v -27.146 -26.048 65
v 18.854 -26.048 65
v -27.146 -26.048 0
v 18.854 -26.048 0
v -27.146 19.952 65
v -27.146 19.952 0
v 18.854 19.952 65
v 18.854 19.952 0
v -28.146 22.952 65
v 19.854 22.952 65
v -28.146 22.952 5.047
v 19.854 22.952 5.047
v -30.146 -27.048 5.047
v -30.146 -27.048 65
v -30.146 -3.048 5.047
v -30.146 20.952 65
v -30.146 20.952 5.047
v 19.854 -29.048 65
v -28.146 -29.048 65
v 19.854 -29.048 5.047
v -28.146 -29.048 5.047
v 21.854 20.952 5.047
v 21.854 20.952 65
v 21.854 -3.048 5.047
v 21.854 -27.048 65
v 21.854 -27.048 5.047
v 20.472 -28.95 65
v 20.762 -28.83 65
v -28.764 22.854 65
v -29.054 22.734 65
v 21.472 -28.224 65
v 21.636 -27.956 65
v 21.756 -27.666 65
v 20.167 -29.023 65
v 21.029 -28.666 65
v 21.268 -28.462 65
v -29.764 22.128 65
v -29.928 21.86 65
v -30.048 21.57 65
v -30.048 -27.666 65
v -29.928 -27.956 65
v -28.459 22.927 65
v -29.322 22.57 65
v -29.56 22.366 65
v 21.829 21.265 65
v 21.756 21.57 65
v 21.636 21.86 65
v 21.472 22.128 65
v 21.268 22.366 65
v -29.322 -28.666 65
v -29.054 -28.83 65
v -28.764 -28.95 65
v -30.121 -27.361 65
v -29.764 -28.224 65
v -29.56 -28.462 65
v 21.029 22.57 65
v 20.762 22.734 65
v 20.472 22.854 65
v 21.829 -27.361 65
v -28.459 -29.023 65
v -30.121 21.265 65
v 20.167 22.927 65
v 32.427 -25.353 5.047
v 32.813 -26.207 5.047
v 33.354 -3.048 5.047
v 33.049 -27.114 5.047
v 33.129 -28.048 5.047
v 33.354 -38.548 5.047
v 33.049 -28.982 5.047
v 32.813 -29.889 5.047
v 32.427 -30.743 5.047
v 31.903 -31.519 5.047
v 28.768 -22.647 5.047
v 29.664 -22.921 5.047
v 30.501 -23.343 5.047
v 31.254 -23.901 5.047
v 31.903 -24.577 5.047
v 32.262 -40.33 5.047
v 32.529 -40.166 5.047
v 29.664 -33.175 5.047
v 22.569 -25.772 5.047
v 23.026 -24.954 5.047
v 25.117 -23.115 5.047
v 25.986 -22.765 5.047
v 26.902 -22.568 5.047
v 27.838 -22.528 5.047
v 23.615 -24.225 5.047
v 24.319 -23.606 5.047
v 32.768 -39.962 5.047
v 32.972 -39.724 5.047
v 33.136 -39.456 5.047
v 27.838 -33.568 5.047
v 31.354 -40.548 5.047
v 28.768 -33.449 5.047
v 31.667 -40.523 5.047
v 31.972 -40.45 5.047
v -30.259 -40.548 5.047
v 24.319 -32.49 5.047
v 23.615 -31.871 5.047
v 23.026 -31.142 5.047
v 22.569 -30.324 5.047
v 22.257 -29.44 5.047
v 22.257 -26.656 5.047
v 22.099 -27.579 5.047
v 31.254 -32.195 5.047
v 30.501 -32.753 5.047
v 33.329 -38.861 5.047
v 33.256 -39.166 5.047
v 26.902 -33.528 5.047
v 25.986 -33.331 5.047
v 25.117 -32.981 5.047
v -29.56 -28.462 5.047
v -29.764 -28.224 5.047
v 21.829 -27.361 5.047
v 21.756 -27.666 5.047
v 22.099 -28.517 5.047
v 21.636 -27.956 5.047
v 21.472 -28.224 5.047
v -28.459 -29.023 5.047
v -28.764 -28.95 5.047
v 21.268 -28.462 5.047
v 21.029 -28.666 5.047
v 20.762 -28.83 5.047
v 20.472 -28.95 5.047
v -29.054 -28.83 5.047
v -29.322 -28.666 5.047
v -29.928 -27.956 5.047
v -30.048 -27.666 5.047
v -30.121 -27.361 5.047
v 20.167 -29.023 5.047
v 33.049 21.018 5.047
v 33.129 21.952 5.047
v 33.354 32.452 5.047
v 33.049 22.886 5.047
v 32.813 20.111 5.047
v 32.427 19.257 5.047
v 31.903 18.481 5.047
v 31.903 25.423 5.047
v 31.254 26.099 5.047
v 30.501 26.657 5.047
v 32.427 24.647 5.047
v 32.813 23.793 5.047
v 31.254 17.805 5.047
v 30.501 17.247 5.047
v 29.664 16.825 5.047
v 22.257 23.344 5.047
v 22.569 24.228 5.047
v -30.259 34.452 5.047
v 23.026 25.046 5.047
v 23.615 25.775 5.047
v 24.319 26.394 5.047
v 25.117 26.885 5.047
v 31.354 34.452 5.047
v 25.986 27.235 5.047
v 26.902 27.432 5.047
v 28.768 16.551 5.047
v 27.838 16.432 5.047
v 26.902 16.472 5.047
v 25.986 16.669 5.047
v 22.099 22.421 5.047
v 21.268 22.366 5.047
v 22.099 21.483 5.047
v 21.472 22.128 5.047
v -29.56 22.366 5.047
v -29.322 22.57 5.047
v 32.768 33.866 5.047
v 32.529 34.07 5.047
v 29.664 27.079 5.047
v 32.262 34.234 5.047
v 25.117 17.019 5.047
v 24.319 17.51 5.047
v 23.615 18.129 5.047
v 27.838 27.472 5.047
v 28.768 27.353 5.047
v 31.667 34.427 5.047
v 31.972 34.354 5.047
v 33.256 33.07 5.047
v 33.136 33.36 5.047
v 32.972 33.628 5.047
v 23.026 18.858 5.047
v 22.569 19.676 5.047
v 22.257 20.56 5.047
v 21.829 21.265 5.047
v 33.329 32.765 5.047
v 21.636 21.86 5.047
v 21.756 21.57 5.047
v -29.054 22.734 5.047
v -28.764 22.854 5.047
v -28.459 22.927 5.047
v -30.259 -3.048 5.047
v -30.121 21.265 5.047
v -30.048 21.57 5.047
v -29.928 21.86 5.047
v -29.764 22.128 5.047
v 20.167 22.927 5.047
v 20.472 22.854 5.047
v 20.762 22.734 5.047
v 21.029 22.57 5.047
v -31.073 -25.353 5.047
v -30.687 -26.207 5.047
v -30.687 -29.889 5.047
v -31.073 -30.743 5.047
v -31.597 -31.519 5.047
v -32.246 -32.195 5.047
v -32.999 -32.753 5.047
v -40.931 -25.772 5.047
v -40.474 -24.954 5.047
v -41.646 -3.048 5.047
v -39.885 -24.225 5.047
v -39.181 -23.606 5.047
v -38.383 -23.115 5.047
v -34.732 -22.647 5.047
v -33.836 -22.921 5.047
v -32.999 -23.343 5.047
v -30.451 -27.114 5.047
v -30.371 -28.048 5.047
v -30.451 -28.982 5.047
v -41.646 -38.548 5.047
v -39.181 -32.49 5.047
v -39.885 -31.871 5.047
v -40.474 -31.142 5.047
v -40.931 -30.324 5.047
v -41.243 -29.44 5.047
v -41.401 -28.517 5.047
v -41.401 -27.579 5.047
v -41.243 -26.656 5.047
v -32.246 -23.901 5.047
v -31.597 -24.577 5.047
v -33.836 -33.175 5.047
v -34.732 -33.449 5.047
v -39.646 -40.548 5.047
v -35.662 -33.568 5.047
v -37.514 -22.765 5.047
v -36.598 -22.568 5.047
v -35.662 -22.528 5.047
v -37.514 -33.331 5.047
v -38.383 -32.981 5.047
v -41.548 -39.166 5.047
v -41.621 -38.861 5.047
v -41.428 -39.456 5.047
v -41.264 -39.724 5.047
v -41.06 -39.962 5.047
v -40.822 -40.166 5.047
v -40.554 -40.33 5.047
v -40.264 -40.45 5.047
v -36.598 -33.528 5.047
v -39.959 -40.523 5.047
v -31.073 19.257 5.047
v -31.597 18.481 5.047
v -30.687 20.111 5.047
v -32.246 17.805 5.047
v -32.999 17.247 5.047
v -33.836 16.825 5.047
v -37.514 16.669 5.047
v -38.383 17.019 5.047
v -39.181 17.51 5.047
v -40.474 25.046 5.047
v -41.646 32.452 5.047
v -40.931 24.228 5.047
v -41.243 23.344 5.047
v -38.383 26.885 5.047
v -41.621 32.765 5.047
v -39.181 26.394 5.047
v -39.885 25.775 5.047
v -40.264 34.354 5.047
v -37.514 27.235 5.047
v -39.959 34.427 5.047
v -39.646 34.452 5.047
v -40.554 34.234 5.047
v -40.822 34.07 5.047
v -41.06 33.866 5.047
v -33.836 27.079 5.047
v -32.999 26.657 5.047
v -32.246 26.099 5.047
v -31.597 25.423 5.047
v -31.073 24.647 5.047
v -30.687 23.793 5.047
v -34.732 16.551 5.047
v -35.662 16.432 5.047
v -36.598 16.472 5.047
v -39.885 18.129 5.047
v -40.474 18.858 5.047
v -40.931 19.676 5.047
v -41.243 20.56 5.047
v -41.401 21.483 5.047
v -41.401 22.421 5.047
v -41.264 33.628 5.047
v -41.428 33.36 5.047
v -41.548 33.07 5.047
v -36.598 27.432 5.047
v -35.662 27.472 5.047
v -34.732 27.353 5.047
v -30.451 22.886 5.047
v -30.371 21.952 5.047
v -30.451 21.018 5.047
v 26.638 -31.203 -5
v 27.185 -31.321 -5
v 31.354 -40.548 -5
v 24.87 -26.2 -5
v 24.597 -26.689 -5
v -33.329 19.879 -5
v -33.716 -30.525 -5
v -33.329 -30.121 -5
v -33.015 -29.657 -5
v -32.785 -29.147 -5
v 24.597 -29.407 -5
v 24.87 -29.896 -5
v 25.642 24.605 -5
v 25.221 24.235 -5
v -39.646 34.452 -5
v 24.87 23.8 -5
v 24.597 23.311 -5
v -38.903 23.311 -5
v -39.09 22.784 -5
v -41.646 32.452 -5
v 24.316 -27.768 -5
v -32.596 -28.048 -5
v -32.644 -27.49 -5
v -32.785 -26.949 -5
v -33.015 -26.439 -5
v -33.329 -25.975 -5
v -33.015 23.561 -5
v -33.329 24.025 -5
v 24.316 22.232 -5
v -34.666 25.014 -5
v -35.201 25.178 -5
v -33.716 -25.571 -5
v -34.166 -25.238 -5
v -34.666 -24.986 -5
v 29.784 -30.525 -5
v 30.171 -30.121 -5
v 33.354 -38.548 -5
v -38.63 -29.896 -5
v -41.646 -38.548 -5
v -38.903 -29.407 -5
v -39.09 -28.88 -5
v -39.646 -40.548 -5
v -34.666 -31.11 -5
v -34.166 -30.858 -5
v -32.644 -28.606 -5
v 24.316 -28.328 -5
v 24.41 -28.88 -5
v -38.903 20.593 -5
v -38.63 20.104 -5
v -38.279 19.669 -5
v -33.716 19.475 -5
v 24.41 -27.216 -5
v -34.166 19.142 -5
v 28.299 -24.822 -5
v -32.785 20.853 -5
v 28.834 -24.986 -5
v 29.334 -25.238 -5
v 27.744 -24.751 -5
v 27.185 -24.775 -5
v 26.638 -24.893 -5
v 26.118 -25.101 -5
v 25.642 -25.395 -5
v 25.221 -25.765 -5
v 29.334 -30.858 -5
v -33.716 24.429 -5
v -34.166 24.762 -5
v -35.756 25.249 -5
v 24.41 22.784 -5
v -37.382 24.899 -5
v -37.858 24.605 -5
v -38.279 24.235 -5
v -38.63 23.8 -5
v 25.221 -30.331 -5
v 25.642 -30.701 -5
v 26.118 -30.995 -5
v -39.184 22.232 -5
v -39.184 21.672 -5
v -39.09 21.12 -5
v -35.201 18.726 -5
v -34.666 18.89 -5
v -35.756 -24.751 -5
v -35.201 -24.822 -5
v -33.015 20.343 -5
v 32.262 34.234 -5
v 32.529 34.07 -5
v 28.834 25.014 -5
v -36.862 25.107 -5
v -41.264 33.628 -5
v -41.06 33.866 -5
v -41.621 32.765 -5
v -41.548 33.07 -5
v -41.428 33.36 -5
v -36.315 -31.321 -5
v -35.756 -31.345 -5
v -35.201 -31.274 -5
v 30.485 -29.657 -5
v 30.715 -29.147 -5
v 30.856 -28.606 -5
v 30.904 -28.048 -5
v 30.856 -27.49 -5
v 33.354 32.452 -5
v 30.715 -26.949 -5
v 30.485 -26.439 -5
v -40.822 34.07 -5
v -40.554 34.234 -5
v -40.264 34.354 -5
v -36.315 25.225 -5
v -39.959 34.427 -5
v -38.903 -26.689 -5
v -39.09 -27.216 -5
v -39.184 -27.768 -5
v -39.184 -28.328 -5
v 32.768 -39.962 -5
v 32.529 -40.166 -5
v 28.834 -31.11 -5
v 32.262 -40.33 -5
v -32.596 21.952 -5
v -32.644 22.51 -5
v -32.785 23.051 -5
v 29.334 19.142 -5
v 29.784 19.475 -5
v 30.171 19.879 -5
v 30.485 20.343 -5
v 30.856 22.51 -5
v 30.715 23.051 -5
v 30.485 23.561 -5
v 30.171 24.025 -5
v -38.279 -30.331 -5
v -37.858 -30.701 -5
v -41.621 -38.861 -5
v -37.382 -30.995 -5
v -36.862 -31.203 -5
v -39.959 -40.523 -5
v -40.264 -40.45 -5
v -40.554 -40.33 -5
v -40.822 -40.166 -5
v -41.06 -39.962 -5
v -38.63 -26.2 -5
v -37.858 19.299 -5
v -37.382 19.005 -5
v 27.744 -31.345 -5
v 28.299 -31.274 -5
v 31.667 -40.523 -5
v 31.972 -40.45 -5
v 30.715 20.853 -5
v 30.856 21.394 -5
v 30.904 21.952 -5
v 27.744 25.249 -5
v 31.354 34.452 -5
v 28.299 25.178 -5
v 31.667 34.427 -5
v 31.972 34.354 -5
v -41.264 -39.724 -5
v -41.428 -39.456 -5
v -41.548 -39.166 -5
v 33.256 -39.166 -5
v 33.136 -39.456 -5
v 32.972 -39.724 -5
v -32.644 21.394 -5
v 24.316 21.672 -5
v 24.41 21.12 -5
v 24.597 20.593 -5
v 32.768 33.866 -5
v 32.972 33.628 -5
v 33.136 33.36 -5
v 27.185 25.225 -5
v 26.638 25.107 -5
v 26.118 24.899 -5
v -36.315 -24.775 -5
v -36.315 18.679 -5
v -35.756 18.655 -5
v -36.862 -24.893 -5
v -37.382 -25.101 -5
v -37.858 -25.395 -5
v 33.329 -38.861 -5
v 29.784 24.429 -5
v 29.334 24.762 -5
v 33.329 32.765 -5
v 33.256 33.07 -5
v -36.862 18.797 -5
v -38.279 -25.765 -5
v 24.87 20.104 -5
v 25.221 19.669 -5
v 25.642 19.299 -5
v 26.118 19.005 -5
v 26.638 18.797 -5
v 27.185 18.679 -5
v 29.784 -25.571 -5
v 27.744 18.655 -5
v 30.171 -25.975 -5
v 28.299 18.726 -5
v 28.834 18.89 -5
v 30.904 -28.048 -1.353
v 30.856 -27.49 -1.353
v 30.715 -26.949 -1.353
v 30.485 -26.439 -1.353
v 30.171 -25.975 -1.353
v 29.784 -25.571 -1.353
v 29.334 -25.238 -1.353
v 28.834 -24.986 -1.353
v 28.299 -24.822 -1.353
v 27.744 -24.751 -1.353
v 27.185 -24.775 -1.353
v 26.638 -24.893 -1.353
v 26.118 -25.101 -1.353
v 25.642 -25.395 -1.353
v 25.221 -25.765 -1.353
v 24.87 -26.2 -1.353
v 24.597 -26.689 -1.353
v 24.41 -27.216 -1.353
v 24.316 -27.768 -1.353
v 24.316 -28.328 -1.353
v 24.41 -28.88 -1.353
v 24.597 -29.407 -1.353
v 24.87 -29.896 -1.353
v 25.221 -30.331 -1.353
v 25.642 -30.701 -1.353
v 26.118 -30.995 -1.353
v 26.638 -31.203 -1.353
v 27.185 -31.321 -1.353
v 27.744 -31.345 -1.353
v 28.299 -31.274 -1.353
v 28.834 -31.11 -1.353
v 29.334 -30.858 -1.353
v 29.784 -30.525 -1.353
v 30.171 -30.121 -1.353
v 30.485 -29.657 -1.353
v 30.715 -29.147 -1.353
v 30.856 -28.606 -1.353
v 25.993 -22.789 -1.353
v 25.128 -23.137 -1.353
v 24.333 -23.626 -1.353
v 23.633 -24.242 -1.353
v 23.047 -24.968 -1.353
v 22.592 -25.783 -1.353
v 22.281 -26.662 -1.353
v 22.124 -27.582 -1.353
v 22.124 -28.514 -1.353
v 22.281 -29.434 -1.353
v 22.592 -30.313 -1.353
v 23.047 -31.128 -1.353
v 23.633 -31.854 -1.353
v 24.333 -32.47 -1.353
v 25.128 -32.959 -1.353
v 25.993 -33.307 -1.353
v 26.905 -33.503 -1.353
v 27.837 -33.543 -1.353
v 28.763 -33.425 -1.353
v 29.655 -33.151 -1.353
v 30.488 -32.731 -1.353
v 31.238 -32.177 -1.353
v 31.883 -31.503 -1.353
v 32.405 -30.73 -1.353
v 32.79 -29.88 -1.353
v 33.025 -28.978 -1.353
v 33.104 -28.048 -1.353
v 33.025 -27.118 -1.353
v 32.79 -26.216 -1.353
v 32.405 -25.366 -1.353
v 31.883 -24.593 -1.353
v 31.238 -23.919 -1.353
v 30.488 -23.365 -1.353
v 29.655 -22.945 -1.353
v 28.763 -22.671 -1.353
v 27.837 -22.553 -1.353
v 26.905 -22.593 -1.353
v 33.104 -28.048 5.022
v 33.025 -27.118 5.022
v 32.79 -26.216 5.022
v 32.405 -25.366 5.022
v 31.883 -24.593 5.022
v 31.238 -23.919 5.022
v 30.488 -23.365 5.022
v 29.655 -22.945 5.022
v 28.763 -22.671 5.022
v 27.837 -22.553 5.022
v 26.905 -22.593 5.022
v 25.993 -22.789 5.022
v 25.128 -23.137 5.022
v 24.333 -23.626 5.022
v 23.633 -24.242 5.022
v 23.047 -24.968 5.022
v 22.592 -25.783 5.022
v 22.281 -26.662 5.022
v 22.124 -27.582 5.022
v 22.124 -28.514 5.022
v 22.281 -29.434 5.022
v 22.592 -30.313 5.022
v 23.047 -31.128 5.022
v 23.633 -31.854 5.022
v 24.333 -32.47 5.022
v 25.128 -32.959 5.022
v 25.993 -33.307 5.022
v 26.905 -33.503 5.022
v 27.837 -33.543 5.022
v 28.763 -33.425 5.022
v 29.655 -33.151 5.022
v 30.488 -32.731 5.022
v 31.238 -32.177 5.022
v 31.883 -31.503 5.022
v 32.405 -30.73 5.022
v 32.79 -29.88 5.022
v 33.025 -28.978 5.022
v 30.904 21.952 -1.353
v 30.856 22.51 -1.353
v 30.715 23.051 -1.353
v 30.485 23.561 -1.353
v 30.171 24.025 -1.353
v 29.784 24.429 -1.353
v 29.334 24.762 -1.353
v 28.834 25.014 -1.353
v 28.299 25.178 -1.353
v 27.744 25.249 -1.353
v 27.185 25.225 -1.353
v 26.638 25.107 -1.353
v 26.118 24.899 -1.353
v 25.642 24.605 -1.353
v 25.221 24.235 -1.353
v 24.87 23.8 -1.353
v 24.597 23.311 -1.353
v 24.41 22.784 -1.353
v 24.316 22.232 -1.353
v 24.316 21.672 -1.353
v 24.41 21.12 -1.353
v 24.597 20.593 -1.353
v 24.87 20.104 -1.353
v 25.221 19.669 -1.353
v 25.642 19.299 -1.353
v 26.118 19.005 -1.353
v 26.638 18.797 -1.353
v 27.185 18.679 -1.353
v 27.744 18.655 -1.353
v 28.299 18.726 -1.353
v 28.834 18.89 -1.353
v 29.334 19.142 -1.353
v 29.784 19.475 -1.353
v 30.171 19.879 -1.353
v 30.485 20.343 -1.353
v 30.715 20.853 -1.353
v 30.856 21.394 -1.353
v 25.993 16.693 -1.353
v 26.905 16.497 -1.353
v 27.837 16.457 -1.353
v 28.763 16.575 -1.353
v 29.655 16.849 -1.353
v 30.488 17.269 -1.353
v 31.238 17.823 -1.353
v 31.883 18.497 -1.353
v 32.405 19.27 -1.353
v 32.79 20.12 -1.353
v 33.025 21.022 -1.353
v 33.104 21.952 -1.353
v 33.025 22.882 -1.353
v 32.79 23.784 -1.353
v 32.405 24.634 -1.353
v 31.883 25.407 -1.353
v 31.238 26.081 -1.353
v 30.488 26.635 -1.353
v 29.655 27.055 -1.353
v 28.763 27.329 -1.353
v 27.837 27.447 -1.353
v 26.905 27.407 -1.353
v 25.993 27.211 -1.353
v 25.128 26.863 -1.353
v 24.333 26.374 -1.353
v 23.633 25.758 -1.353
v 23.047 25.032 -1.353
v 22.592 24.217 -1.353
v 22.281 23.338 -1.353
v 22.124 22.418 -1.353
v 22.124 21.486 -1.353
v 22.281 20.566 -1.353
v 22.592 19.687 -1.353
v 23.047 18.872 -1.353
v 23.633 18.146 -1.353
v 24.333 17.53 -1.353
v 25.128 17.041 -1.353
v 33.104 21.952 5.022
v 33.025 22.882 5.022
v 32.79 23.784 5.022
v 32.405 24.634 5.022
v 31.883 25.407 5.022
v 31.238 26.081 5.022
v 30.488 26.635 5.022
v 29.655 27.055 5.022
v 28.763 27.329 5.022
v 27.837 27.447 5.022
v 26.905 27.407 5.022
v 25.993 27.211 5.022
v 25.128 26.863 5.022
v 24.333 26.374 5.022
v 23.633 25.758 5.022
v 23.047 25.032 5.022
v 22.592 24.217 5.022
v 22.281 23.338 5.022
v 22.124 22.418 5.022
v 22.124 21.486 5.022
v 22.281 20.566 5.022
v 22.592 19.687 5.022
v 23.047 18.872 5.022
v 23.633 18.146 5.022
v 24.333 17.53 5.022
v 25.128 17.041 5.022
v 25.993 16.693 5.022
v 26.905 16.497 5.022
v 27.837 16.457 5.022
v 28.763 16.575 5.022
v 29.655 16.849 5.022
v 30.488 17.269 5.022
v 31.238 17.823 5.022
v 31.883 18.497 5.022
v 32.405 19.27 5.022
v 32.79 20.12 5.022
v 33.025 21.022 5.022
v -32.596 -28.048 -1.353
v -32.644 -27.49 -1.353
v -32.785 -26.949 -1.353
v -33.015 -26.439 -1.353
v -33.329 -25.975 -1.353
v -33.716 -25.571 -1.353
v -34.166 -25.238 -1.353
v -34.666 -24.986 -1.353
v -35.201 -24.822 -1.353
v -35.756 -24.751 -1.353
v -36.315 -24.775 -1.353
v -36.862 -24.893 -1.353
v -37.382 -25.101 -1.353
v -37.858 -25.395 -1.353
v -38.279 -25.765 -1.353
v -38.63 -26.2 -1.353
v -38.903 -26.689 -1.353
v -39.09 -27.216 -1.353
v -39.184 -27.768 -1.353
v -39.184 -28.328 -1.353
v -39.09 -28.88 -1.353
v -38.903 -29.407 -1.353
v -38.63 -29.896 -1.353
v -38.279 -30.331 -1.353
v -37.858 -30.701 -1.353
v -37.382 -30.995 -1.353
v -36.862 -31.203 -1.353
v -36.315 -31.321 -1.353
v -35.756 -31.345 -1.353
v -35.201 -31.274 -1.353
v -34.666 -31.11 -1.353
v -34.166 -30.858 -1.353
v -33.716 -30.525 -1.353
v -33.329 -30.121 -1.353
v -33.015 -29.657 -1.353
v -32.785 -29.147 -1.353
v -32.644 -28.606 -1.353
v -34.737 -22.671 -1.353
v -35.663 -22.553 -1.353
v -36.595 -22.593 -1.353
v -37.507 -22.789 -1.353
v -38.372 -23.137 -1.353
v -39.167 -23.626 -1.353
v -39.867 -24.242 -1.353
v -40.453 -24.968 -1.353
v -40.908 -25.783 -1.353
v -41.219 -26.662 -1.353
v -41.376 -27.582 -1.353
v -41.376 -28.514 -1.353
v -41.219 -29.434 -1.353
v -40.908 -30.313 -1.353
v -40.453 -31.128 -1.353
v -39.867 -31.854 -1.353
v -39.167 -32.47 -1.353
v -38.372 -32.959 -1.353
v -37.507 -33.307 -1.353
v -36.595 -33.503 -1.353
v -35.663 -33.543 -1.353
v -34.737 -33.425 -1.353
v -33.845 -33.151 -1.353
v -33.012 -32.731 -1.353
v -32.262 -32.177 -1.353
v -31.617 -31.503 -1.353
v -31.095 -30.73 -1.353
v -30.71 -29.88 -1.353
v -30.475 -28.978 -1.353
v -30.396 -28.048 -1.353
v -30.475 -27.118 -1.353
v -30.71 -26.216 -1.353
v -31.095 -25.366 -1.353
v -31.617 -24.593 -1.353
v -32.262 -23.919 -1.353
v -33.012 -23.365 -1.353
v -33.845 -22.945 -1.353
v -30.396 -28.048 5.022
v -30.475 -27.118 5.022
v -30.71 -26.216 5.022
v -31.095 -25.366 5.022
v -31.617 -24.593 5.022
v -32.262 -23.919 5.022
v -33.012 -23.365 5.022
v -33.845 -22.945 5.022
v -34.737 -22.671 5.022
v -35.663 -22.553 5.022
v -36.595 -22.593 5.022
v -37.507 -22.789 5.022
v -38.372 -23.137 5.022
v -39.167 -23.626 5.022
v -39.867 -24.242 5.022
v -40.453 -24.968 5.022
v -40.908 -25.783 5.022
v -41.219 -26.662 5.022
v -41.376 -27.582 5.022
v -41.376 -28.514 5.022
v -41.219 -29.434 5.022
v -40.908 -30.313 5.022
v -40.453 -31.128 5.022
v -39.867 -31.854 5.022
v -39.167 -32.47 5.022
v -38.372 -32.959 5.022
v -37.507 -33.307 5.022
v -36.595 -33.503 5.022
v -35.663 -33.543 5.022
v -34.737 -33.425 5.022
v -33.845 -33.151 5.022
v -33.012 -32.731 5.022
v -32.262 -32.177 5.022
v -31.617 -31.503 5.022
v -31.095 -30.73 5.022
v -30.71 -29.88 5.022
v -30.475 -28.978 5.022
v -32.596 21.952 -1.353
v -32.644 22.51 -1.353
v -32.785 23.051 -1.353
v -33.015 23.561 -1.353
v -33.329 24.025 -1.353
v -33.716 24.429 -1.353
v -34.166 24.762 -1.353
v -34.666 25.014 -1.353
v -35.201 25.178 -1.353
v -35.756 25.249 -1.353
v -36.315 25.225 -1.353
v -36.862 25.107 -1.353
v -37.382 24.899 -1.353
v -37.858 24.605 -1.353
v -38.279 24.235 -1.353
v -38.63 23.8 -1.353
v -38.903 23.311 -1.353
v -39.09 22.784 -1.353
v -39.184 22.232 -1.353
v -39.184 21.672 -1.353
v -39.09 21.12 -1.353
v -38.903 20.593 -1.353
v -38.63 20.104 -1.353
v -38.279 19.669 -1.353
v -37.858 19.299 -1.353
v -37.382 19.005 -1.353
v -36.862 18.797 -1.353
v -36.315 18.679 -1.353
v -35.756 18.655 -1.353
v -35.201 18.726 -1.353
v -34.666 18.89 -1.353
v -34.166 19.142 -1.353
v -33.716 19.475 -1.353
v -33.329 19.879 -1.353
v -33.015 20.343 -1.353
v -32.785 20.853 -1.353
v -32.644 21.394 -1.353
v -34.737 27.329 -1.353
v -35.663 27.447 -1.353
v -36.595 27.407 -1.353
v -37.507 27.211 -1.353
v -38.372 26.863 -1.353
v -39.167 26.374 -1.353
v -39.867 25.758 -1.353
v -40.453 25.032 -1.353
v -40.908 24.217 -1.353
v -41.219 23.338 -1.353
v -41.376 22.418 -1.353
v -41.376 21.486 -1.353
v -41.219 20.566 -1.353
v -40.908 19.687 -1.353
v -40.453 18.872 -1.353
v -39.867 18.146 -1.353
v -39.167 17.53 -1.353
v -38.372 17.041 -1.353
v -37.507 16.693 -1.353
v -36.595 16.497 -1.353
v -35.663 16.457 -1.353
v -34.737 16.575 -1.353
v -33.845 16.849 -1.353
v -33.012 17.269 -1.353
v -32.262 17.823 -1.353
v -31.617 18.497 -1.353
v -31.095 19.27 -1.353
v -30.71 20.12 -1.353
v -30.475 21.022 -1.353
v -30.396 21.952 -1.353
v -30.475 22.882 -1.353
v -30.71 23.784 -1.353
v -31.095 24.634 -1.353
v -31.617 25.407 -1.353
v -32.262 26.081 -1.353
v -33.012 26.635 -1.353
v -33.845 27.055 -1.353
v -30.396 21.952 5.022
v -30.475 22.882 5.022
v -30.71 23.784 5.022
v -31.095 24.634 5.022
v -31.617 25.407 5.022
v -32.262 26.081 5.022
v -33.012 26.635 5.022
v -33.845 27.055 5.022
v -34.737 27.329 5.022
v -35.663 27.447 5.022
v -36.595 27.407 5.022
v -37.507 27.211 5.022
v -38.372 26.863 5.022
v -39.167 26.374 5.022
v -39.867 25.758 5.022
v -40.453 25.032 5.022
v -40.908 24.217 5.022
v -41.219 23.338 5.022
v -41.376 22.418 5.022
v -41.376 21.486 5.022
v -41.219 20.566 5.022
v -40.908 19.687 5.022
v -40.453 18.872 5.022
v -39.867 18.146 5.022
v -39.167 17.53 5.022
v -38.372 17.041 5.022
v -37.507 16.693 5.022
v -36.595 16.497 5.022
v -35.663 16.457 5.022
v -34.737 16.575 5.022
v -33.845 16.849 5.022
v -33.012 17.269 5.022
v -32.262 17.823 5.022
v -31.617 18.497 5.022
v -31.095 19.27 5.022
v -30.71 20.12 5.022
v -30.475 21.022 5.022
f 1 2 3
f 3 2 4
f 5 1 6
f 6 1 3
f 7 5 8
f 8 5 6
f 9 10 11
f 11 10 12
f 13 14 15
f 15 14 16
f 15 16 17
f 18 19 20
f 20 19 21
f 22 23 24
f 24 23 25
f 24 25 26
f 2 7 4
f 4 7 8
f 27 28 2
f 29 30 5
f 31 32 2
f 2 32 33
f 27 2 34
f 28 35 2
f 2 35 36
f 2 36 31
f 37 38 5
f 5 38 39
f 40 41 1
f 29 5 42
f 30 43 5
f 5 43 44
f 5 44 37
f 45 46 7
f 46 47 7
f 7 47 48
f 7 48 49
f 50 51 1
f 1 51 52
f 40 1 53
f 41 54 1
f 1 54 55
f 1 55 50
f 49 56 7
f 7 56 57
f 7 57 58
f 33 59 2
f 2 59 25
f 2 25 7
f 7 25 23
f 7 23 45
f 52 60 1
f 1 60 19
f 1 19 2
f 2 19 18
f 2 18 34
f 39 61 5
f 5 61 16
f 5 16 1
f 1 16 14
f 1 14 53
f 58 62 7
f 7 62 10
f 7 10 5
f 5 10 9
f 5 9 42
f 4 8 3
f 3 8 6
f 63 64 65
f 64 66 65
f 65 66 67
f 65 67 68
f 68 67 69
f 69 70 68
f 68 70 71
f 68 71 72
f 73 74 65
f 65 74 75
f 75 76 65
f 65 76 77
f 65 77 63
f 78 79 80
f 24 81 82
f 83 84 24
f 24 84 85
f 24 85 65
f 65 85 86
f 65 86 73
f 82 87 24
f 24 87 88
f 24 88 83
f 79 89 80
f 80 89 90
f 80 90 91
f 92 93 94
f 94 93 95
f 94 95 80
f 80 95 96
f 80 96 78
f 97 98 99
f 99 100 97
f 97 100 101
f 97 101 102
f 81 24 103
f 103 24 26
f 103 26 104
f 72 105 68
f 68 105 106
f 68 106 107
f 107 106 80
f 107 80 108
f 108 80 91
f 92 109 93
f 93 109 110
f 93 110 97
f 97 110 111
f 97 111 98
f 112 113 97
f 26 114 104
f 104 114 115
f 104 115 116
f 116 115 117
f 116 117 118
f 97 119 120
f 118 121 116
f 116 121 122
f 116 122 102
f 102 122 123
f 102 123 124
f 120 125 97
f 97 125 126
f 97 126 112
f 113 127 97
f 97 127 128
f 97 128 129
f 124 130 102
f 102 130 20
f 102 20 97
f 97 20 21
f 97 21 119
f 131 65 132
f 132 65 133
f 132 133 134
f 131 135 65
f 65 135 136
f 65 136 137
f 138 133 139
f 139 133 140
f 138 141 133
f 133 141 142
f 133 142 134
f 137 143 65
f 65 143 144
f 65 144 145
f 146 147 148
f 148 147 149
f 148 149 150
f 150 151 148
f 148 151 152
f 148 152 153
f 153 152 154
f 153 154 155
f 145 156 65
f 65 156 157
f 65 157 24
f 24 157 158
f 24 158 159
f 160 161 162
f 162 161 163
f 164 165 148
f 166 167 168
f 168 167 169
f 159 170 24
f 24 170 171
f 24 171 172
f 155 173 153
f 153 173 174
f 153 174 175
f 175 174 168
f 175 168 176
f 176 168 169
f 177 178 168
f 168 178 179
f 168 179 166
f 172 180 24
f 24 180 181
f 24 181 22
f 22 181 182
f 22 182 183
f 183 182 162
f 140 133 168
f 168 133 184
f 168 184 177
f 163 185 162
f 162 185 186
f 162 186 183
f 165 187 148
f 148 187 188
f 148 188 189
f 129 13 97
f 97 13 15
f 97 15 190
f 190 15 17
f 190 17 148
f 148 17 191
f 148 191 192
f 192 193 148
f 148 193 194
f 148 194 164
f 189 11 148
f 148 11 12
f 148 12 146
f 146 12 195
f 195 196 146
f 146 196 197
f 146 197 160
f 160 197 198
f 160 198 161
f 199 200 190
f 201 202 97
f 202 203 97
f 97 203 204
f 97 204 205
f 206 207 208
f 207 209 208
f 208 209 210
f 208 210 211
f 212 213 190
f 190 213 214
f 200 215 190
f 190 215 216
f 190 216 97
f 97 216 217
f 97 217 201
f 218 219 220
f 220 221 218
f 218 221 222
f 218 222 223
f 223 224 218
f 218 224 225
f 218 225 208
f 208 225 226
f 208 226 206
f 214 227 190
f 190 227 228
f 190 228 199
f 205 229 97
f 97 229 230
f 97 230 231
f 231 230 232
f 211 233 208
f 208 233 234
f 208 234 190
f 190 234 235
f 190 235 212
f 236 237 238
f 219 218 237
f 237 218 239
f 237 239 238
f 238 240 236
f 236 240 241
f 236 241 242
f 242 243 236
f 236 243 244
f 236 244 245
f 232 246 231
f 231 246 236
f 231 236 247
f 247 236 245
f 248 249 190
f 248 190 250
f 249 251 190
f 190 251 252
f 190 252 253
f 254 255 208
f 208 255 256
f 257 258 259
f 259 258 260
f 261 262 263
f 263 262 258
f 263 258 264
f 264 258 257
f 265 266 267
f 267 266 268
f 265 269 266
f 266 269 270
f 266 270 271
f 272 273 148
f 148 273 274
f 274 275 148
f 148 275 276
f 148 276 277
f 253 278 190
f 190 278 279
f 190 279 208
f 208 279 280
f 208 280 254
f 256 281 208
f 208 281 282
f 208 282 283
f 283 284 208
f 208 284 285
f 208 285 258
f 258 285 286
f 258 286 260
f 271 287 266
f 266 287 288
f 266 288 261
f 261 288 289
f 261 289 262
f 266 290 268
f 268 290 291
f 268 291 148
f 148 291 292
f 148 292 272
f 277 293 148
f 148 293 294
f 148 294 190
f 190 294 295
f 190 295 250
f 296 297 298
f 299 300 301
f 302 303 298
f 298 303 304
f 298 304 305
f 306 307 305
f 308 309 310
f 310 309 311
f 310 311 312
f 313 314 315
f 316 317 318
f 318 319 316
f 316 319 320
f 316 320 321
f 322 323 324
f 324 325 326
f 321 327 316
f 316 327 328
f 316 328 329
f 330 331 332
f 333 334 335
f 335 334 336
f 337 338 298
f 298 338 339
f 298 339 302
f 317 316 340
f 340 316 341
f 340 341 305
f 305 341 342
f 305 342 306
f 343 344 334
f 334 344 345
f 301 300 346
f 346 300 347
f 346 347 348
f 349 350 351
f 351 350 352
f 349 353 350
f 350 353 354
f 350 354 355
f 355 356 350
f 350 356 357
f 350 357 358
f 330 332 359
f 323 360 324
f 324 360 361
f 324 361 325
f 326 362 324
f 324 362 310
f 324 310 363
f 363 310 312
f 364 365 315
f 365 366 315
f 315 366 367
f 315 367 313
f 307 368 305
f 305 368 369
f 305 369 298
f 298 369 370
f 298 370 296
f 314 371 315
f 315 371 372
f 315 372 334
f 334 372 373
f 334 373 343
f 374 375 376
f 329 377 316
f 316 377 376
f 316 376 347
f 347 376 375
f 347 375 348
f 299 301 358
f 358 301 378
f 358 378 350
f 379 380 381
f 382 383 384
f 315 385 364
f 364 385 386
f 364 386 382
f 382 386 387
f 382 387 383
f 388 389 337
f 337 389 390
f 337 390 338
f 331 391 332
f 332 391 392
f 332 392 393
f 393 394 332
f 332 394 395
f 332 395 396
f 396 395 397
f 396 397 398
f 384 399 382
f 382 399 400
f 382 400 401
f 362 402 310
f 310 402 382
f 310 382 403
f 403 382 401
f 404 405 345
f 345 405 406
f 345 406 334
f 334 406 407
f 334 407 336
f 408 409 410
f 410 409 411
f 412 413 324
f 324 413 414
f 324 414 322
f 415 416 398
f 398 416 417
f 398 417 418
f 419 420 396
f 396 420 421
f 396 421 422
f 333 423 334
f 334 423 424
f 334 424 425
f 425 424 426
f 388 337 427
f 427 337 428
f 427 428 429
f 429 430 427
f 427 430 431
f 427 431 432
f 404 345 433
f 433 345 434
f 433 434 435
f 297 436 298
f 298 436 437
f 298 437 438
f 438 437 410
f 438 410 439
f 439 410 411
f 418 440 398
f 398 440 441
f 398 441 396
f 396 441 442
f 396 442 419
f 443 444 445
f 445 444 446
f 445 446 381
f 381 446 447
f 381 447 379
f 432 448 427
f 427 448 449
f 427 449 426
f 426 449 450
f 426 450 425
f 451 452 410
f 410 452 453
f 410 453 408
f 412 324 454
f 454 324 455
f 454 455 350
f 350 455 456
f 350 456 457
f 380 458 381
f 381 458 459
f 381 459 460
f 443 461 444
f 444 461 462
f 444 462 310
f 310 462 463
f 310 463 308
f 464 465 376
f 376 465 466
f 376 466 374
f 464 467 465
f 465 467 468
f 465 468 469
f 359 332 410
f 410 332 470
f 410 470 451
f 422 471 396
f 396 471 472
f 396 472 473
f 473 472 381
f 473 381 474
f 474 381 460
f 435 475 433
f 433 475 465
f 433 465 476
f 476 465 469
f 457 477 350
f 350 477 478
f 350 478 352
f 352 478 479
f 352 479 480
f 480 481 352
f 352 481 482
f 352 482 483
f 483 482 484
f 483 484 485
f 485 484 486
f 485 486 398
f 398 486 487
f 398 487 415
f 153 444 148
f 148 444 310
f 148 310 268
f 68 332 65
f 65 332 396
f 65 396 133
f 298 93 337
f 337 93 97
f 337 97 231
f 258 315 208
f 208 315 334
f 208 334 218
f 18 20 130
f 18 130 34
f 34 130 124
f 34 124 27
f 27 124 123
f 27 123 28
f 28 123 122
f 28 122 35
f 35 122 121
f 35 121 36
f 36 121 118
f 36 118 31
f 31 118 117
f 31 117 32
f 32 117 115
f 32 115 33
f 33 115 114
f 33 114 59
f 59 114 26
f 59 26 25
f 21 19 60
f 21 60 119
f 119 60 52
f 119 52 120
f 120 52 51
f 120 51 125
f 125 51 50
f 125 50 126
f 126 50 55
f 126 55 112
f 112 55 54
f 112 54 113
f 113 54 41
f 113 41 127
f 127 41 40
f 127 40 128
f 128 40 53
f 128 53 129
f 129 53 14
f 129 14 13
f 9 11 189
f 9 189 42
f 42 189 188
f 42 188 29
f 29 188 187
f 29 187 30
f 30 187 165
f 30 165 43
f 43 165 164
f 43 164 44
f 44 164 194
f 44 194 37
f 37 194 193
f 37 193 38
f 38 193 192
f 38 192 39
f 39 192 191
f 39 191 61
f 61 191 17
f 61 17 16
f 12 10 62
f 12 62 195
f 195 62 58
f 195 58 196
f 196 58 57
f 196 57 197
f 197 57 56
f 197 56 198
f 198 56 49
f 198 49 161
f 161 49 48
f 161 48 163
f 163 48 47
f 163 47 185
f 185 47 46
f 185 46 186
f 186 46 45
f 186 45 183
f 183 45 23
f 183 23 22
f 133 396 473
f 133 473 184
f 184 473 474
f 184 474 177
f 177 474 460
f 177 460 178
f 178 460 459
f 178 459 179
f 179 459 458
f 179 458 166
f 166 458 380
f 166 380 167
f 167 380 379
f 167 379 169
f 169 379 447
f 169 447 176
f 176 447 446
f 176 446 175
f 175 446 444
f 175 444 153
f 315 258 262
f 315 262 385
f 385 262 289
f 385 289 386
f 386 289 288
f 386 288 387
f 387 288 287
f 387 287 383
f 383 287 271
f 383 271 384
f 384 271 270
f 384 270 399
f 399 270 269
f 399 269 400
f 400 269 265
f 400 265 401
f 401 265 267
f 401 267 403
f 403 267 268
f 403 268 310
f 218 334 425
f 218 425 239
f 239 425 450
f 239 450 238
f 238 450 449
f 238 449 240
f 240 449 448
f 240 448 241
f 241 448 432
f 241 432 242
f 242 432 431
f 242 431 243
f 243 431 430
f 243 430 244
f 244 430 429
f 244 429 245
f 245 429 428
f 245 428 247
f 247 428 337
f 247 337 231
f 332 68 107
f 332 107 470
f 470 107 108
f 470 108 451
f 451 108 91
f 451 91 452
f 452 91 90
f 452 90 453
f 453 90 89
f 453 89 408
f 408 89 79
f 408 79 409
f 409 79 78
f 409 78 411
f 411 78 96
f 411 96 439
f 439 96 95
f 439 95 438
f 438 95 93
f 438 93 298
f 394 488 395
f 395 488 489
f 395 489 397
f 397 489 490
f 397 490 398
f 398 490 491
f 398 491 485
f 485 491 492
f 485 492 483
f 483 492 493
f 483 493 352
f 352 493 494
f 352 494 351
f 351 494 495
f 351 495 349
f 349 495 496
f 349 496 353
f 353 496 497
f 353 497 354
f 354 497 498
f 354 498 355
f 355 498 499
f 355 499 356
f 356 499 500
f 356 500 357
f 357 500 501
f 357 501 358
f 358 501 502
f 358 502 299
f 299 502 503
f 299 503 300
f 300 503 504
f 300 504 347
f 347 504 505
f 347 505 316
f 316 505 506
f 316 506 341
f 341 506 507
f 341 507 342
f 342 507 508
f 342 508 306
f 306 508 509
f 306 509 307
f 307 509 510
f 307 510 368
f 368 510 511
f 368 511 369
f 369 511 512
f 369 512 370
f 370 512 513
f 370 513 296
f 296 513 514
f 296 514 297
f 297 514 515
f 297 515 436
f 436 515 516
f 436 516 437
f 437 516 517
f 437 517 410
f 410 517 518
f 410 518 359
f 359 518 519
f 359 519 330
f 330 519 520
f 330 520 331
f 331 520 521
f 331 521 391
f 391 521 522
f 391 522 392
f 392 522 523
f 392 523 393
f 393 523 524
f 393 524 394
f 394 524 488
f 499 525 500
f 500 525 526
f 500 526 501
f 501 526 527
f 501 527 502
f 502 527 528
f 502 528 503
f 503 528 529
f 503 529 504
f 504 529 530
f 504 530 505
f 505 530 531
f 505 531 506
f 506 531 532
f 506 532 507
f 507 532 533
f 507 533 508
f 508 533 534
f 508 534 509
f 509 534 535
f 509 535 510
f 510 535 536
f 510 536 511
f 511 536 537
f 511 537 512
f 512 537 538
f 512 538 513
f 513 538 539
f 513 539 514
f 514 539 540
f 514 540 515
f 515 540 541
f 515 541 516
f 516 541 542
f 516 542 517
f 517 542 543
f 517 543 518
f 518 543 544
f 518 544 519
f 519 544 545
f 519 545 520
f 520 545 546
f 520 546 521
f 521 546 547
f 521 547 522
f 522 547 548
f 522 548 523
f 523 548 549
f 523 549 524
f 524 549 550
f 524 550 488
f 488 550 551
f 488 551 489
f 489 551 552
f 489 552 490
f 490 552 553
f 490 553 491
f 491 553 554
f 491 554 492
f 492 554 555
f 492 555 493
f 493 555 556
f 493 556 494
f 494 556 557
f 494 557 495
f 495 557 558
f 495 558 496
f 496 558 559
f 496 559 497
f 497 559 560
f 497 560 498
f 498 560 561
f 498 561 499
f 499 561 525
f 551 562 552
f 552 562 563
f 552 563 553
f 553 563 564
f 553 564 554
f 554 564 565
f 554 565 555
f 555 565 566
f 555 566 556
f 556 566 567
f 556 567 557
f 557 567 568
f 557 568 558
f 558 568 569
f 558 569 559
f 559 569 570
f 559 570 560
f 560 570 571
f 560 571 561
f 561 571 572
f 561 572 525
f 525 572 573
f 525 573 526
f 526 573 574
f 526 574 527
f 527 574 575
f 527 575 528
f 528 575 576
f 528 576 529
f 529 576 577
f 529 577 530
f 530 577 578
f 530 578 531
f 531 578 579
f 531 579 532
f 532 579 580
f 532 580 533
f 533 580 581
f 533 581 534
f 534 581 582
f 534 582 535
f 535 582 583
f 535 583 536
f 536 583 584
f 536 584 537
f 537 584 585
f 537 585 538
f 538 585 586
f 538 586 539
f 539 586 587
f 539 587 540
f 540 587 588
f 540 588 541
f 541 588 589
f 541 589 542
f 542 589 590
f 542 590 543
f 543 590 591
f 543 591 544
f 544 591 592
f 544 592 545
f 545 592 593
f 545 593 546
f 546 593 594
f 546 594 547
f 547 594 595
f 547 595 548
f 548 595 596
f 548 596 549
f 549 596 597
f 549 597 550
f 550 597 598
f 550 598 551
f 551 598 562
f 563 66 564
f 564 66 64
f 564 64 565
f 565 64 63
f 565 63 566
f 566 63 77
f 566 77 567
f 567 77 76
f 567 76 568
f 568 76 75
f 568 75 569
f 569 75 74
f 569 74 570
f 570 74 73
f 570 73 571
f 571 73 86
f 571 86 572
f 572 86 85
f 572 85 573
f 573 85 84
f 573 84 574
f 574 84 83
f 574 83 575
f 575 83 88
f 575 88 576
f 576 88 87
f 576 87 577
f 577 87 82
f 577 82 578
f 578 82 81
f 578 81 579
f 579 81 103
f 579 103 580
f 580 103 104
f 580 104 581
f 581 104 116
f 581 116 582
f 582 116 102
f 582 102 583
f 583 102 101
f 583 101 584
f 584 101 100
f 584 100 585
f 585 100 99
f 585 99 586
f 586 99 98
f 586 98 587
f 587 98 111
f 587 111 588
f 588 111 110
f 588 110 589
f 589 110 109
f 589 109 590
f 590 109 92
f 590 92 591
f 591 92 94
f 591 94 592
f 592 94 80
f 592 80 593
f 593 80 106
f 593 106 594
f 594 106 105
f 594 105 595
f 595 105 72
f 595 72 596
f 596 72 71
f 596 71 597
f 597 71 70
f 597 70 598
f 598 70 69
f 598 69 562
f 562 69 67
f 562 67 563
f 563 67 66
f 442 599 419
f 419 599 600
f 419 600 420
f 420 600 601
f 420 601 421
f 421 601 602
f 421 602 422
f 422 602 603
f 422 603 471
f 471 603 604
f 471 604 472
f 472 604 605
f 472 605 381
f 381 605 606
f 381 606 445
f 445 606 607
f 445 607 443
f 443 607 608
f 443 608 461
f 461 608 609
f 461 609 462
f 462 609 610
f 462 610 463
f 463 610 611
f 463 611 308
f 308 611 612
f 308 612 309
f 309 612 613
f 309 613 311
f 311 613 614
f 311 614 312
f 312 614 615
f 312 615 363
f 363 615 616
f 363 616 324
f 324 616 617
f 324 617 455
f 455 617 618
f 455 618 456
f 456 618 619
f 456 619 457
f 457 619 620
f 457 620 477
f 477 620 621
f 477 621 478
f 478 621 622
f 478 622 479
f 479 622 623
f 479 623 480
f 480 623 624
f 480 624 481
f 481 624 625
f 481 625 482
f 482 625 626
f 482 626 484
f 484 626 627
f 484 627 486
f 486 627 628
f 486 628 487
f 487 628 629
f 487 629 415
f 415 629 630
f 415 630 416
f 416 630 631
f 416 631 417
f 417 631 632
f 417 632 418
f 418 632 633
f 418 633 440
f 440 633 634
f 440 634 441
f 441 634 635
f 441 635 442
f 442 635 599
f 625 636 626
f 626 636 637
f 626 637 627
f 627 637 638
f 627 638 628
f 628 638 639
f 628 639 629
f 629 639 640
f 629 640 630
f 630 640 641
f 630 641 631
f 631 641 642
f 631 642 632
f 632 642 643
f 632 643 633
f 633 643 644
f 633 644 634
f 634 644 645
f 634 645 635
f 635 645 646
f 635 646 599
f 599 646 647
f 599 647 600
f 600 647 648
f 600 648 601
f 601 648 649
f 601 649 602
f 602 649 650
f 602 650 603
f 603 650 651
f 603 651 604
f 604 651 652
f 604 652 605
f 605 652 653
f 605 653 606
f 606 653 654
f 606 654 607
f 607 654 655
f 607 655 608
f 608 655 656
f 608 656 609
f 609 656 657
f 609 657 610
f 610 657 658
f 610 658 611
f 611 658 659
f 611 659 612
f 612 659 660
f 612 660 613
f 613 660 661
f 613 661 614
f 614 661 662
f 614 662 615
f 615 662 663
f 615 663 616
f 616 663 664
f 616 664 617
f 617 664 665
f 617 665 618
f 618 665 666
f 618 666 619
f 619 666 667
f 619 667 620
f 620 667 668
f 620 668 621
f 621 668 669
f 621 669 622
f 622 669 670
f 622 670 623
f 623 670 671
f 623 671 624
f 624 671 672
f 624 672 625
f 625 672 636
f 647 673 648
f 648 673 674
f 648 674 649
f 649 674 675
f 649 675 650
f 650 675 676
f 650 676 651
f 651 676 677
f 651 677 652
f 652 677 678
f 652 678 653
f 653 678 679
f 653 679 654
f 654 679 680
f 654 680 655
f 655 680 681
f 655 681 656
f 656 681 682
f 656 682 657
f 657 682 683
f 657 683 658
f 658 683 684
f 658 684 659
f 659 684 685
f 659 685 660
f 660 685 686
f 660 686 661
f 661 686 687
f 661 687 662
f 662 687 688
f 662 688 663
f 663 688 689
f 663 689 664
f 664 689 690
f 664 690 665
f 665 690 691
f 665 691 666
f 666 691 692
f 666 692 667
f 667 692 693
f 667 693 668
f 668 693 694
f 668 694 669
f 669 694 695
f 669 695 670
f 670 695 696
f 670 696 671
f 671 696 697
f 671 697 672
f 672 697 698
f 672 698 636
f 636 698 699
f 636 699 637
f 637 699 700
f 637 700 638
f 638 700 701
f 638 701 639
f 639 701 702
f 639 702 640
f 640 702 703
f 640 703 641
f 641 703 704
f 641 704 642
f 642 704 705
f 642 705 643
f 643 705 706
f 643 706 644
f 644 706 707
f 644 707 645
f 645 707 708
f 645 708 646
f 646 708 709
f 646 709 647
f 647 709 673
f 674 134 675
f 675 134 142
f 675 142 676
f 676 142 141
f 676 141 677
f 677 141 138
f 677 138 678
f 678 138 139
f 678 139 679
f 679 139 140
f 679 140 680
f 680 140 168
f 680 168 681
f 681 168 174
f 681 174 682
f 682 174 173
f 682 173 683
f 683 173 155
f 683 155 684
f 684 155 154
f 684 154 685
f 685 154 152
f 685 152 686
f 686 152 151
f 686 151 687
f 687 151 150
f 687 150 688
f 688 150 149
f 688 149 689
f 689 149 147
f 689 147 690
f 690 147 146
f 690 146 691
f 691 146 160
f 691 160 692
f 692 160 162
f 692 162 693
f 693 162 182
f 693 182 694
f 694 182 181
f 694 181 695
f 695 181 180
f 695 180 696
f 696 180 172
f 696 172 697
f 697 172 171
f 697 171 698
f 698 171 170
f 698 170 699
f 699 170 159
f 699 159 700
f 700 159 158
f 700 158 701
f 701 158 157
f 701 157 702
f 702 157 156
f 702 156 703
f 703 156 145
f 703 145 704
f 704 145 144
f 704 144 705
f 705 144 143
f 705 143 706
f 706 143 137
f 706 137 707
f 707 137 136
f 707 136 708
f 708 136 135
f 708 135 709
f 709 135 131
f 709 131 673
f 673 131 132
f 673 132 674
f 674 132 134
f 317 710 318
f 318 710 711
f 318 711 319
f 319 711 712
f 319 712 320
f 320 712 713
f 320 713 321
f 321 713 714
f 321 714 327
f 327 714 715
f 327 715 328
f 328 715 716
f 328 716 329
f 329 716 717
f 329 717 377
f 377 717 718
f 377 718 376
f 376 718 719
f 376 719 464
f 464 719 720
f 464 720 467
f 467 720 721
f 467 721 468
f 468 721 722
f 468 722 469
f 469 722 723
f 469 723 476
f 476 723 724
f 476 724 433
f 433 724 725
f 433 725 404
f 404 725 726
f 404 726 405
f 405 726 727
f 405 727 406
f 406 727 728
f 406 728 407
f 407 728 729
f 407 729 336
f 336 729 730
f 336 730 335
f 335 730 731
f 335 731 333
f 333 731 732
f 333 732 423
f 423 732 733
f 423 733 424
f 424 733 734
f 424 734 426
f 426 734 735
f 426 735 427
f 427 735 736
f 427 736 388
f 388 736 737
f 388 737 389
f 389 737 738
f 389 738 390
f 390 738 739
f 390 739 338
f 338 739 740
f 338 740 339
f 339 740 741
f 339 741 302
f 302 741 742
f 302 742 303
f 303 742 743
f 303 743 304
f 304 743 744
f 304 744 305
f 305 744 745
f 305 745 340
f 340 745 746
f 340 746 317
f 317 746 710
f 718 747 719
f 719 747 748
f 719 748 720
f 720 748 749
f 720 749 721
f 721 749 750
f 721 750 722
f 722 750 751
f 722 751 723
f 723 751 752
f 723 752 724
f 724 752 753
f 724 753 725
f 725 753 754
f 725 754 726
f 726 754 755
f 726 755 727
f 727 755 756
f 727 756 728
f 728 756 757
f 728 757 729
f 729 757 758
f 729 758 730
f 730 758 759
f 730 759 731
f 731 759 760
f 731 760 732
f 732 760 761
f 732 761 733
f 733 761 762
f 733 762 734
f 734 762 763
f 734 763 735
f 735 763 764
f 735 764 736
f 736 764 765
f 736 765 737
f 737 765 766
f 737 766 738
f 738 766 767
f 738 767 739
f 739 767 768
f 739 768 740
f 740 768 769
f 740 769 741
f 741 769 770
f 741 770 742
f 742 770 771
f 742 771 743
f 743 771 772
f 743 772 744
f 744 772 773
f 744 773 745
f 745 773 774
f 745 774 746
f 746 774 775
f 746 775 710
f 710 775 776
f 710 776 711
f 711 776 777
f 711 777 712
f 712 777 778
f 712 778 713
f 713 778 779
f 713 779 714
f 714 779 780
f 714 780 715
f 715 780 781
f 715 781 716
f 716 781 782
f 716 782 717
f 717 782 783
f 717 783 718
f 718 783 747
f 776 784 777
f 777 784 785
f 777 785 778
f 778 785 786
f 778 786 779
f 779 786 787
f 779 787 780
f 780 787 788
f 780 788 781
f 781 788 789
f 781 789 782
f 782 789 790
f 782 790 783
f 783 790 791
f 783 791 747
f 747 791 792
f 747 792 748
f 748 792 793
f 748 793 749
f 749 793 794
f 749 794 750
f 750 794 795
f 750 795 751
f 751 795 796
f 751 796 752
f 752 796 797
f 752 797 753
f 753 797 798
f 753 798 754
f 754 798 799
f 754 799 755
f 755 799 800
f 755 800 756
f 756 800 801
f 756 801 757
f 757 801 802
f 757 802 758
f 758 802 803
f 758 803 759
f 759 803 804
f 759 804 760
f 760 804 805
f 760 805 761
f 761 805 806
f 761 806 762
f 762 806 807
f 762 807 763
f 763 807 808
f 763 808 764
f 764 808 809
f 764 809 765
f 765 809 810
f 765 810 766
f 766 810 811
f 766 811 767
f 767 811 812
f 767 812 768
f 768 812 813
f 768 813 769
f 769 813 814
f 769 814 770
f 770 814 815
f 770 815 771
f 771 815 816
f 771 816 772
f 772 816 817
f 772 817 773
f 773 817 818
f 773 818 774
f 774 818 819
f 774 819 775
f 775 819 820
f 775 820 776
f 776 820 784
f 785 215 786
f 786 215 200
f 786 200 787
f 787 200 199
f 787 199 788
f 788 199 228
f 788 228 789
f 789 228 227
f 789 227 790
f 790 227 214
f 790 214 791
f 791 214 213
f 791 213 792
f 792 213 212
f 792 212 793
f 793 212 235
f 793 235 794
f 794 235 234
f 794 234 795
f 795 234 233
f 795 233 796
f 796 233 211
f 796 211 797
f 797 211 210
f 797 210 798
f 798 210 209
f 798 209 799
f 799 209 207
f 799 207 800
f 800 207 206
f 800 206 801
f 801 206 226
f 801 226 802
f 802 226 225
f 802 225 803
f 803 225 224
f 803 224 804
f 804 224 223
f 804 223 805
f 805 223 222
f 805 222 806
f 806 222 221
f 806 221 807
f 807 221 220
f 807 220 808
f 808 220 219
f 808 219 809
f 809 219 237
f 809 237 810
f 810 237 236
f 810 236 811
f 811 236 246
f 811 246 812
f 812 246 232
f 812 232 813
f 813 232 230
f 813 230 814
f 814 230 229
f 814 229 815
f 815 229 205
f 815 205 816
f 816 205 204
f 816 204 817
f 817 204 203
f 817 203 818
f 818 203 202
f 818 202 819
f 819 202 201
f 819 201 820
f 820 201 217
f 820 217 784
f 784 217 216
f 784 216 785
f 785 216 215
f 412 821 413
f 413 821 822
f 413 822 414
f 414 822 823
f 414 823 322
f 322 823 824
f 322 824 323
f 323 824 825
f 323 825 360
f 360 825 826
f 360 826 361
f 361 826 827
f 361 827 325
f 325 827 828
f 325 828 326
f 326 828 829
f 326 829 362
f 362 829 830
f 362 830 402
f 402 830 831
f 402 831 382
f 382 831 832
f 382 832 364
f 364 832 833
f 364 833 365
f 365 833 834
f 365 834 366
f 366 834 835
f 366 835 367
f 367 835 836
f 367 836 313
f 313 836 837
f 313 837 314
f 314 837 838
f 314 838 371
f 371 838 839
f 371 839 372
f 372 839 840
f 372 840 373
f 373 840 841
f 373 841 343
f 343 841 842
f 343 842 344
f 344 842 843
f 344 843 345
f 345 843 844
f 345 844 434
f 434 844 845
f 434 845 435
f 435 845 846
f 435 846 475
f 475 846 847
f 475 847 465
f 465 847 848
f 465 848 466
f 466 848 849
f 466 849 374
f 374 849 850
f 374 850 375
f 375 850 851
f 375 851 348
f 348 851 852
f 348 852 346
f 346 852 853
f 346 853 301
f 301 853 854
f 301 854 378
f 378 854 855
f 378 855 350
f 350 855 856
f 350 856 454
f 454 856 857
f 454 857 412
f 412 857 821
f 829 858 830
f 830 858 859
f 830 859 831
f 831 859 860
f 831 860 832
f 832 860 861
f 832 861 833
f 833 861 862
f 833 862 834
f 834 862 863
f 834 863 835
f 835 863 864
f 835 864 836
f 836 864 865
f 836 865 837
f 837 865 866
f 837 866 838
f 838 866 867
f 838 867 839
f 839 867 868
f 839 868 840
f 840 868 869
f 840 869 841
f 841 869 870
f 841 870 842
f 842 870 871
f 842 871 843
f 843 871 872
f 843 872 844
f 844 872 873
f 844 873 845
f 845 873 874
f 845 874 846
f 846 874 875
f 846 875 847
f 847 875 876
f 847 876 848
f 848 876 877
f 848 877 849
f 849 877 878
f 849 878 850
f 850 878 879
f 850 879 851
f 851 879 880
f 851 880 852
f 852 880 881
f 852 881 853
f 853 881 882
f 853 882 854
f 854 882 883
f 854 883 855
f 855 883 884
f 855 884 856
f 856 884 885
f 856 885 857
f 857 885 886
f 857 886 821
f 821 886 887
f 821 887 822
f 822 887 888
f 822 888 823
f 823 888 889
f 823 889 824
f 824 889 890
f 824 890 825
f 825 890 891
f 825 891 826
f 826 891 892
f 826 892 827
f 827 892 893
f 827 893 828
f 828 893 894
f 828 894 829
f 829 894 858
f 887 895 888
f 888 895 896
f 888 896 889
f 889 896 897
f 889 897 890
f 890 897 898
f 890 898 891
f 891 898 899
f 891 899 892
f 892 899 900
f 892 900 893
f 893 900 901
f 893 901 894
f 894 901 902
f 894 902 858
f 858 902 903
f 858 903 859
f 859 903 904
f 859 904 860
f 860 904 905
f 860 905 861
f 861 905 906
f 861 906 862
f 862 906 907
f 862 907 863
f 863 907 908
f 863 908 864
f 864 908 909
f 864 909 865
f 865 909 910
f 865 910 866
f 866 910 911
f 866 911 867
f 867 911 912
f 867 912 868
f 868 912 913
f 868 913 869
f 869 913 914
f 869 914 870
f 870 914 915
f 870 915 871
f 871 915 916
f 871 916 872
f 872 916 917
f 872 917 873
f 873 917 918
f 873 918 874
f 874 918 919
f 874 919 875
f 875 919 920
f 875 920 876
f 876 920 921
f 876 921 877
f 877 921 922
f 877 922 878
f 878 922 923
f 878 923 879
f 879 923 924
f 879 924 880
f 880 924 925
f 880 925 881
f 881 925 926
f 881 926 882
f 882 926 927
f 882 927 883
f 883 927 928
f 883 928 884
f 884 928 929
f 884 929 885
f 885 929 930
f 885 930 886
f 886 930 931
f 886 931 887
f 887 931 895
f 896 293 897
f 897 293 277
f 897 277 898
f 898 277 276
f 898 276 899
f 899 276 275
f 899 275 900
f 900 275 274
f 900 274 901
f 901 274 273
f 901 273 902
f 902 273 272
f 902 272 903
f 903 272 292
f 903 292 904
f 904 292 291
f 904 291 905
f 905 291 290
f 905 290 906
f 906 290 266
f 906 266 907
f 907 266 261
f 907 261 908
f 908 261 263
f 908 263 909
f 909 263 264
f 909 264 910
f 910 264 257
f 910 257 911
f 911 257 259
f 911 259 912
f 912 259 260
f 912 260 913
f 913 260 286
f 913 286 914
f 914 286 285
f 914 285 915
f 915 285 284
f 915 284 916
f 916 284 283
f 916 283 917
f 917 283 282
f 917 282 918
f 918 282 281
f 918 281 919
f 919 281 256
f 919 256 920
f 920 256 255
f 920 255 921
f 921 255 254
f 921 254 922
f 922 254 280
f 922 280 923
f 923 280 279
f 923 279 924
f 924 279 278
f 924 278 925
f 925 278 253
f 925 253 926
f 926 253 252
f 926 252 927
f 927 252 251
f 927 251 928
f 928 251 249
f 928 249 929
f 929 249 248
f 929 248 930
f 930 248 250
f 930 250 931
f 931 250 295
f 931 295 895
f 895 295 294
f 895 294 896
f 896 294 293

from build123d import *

# Parameters (mm, degrees)
SKETCH1_W                                    = 46
SKETCH1_H                                    = 46
BOSS_EXTRUDE1_DEPTH                          = 65
SKETCH3_W                                    = 75
SKETCH3_H                                    = 75
SKETCH3_W_2                                  = 52
SKETCH3_H_2                                  = 52
SKETCH3_W_3                                  = 23
SKETCH3_H_3                                  = 46
BOSS_EXTRUDE2_DEPTH                          = 5
SKETCH8_W                                    = 75
SKETCH8_H                                    = 75
SKETCH8_W_2                                  = 52
SKETCH8_H_2                                  = 52
BOSS_EXTRUDE3_DEPTH                          = 5.047079132
FILLET1_R                                    = 2
CBORE_FOR_M6_HEX_SOCKET_HEAD_CAP_SCR_2_COUNT = 2
CBORE_FOR_M6_HEX_SOCKET_HEAD_CAP_SCR_2_PITCH = 50
CBORE_FOR_M6_HEX_SOCKET_HEAD_CAP_SCR_3_COUNT = 2
CBORE_FOR_M6_HEX_SOCKET_HEAD_CAP_SCR_3_PITCH = 63.5
CBORE_FOR_M6_HEX_SOCKET_HEAD_CAP_SCR_4_COUNT = 2
CBORE_FOR_M6_HEX_SOCKET_HEAD_CAP_SCR_4_PITCH = 80.822336022


with BuildPart() as part:
    # Sketch1 → Boss-Extrude1 (new body)
    with BuildSketch(Plane(origin=(0, 0, 0), x_dir=(0, 1, 0), z_dir=(0, 0, 1))):
        Polygon((-26.156583063, 30.146094376), (-29.048003873, 30.146094376), (-29.048003873, -21.853905624), (22.951996127, -21.853905624), (22.951996127, 30.146094376), (15.339697873, 30.146094376), align=None)
        with Locations((-3.048003873, 4.146094376)):
            Rectangle(SKETCH1_W, SKETCH1_H, mode=Mode.SUBTRACT)
    extrude(amount=BOSS_EXTRUDE1_DEPTH)

    # Sketch3 → Boss-Extrude2 (add)
    # profile 1 of 5: a face of its own
    with BuildSketch(Plane(origin=(0, 0, 0), x_dir=(1, 0, 0), z_dir=(0, 0, -1))):
        with Locations((-4.146094376, 3.048003873)):
            Rectangle(SKETCH3_W, SKETCH3_H)
        with Locations((-4.146094376, 3.048003873)):
            Rectangle(SKETCH3_W_2, SKETCH3_H_2, mode=Mode.SUBTRACT)
    # profile 2 of 5: a face of its own
    with BuildSketch(Plane(origin=(0, 0, 0), x_dir=(1, 0, 0), z_dir=(0, 0, -1))):
        Polygon((21.853905624, 29.048003873), (-4.146094376, 29.048003873), (-4.146094376, 26.048003873), (18.853905624, 26.048003873), (18.853905624, -19.951996127), (-4.146094376, -19.951996127), (-4.146094376, -22.951996127), (21.853905624, -22.951996127), align=None)
    # profile 3 of 5: a face of its own
    with BuildSketch(Plane(origin=(0, 0, 0), x_dir=(1, 0, 0), z_dir=(0, 0, -1))):
        Polygon((-4.146094376, 26.048003873), (-4.146094376, 29.048003873), (-30.146094376, 29.048003873), (-30.146094376, -22.951996127), (-4.146094376, -22.951996127), (-4.146094376, -19.951996127), (-27.146094376, -19.951996127), (-27.146094376, 26.048003873), align=None)
    # profile 4 of 5: a face of its own
    with BuildSketch(Plane(origin=(0, 0, 0), x_dir=(1, 0, 0), z_dir=(0, 0, -1))):
        with Locations((7.353905624, 3.048003873)):
            Rectangle(SKETCH3_W_3, SKETCH3_H_3)
    # profile 5 of 5: a face of its own
    with BuildSketch(Plane(origin=(0, 0, 0), x_dir=(1, 0, 0), z_dir=(0, 0, -1))):
        with Locations((-15.646094376, 3.048003873)):
            Rectangle(SKETCH3_W_3, SKETCH3_H_3)
    extrude(amount=BOSS_EXTRUDE2_DEPTH)

    # Sketch8 → Boss-Extrude3 (add)
    with BuildSketch(Plane.XY):
        with Locations((-4.146094376, -3.048003873)):
            Rectangle(SKETCH8_W, SKETCH8_H)
        with Locations((-4.146094376, -3.048003873)):
            Rectangle(SKETCH8_W_2, SKETCH8_H_2, mode=Mode.SUBTRACT)
    extrude(amount=BOSS_EXTRUDE3_DEPTH)

    # Fillet1
    fillet1_edges = [part.edges().sort_by_distance(p)[0] for p in [
        (21.853905624, 22.951996127, 35.023539566),
        (21.853905624, -29.048003873, 35.023539566),
        (-30.146094376, -29.048003873, 35.023539566),
        (-30.146094376, 22.951996127, 35.023539566),
        (-41.646094376, -40.548003873, 0.023539566),
        (33.353905624, -40.548003873, 0.023539566),
        (33.353905624, 34.451996127, 0.023539566),
        (-41.646094376, 34.451996127, 0.023539566),
    ]]
    fillet(fillet1_edges, radius=FILLET1_R)

    # Sketch15 → CBORE for M6 Hex Socket Head Cap Screw2 (revolve, cut)
    with BuildSketch(Plane(origin=(-35.896094376, 21.951996127, 5.047079132), x_dir=(0, -1, 0), z_dir=(1, 0, 0))):
        Polygon((0, 0), (0, 10.047079132), (3.3, 10.047079132), (3.3, 6.4), (5.5, 6.4), (5.5, 0.025), (5.525, 0), align=None)
    cbore_for_m6_hex_socket_head_cap_screw2 = revolve(axis=Axis((-35.896094376, 21.951996127, 11.397079132), (0, 0, -1)), mode=Mode.SUBTRACT)

    # CBORE for M6 Hex Socket Head Cap Scr 2: CBORE for M6 Hex Socket Head Cap Screw2 ×2
    with Locations(*[(0, -i * CBORE_FOR_M6_HEX_SOCKET_HEAD_CAP_SCR_2_PITCH, 0) for i in range(1, CBORE_FOR_M6_HEX_SOCKET_HEAD_CAP_SCR_2_COUNT)]):
        add(cbore_for_m6_hex_socket_head_cap_screw2, mode=Mode.SUBTRACT)

    # CBORE for M6 Hex Socket Head Cap Scr 3: CBORE for M6 Hex Socket Head Cap Screw2 ×2
    with Locations(*[(i * CBORE_FOR_M6_HEX_SOCKET_HEAD_CAP_SCR_3_PITCH, 0, 0) for i in range(1, CBORE_FOR_M6_HEX_SOCKET_HEAD_CAP_SCR_3_COUNT)]):
        add(cbore_for_m6_hex_socket_head_cap_screw2, mode=Mode.SUBTRACT)

    # CBORE for M6 Hex Socket Head Cap Scr 4: CBORE for M6 Hex Socket Head Cap Screw2 ×2
    with Locations(*[Vector(0.7856739006278309, -0.6186408666360874, 0) * (i * CBORE_FOR_M6_HEX_SOCKET_HEAD_CAP_SCR_4_PITCH) for i in range(1, CBORE_FOR_M6_HEX_SOCKET_HEAD_CAP_SCR_4_COUNT)]):
        add(cbore_for_m6_hex_socket_head_cap_screw2, mode=Mode.SUBTRACT)


solid = part.part
